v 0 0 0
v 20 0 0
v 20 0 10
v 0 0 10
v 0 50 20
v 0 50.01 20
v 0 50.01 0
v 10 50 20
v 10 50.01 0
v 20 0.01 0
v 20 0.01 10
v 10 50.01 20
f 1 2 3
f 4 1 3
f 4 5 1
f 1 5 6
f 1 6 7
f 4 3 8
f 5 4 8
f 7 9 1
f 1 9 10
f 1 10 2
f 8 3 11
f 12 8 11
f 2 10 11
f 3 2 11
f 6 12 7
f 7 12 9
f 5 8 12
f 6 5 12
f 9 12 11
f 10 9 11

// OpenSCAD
// file: beams.scad
/* 
 * openscad beams library
 * create complex openscads objects from frames which are defining beams
 * (constructed like a ship body or airplane hull)
 *
 * https://github.com/Stemer114/openscad_beams
 * http://www.thingiverse.com/Stemer114/designs
 * 
 *    Copyright (C) 2016 Stemer114 (stemer114@merunka.de)
 *
 *    This program is free software: you can redistribute it and/or modify
 *    it under the terms of the GNU General Public License as published by
 *    the Free Software Foundation, either version 3 of the License, or
 *    (at your option) any later version.
 *
 *    This program is distributed in the hope that it will be useful,
 *    but WITHOUT ANY WARRANTY; without even the implied warranty of
 *    MERCHANTABILITY or FITNESS FOR A PARTICULAR PURPOSE.  See the
 *    GNU General Public License for more details.
 *
 *    You should have received a copy of the GNU General Public License
 *    along with this program.  If not, see <http://www.gnu.org/licenses/>.
 *

 * Credits: 
 *          for some of the examples
 *          MCAD Library - Polyholes Copyright 2011 Nophead (of RepRap fame)
 *          It is licensed under the terms of Creative Commons Attribution 3.0 Unported.
 *          https://github.com/SolidCode/MCAD/blob/master/polyholes.scad
 *
 *          BeamsVersion, libEcho and code structure inspired by 
 *          OpenSCAD Parts Library by randyy is licensed under the GNU - LGPL license. 
 *          http://www.thingiverse.com/thing:6021
 *
 */

//**** house keeping
//we define these as functions to avoid assignment problems from caller modules
function BeamsVersion() = 1.0;  //library version
function ep()=0.01;  //epsilon environment to avoid non-manifold objects


//**** module definitions

// a single rectangular frame, usually very thin
// params: w - width of frame (x direction)
//         h - height of frame (z direction)
//         d - thickness of frame (y direction, usually very thin, e.g. 0.1mm)
//         o - offset vector from origin (probably best to use x and y offsets only here for starters)
//         r - rotation vector (probably best to use only z rotation here for starters)
//         vec - vector interface, used instead of the named params
//         the vector must use the following structure (example)
//           w  h  rotation    offset        thickness
//          [3, 4, [0, 0, 90], [0, -1.5, 0], ep ],   //start (front center)
//         there is no checking other than length checking to branch in the interface
//         so better make sure the vector conforms
//         the vector interface allows you to define a list of vectors in your source file
//         and supply them all at once to the beam module (see below)
//         this probably makes more sense if you look at some of the example files
module frame(
        w = 10,  //width
        h = 10,  //height
        r = [0, 0, 0],  //rotation vector
        o = [0, 0, 0],   //offset vector
        d = ep(),  //thickness (normally very thin)
        vec = [],  //vector, default none
        )
{
    if ( len(vec)==5 ) {
        //use vector interface
        translate( vec[3] )
            rotate( vec[2] )
            cube([ vec[0], vec[4], vec[1] ]);
    } else {
        //use single param interface
        translate(o)
            rotate(r)
            cube([w, d, h]);
    }  //end else
}  //end module

// a single beam consisting of two frames at either end, connected by a hull
// to disable hull, use no_hull=true (for debugging)
// beam uses the vector interface (see above in module frame)
module beam(
        frame1 = [10, 10, [0, 0, 0], [0, 0, 0], ep() ],
        frame2 = [10, 10, [0, 0, 0], [0, 20, 0], ep() ],
        no_hull = false,   
        )
{
    if ( no_hull ) {
        frame(vec=frame1);
        frame(vec=frame2);
    } else {
        hull() {
            frame(vec=frame1);
            frame(vec=frame2);
        }  //end hull
    }  //end else
}  //end module

// a beam consisting of 2 or more frames connected by hulls
// uses the vector interface (see above)
// see example scad files in library source to get an idea how to use this
module beam_multi(frames=[], no_hull=false )
{
    if ( len(frames)<2 ) {
        echo("WARNING: beam_multi: number of frames too small (must be at least 2): ", len(frames) );
    } else {
        for ( frame = [0:len(frames)-2] ) {
            beam( frames[frame], frames[frame+1], no_hull=no_hull );
        } //end for

    }
}

/*************************************************
 * interface 
*/

libEcho=true;
if (libEcho!=false){ 
	echo("****************************************************************  ");
    echo(" beams scad library loaded.");
    echo(" Version: ", BeamsVersion() );
    echo(" usage: - include beams.scad in your project dir,");
    echo("        - then add include <beams.scad> to your script ");
	echo("        - to turn off this header, place libEcho=false; in your script");
    echo("        - see examples scad files to some inspiration")
	echo("****************************************************************  ");
}
// main file
/*
 * example for using openscad beams library
 * see https://github.com/Stemer114/openscad_beams
 *
 */

ep = 0.01;  //epsilon environment

include <beams.scad>

//          w   h   rotation   offset    thickness
params = [ 
           [20, 10, [0, 0, 0], [0, 0, 0], ep ],  //first frame
           [10, 20, [0, 0, 0], [0, 50, 0], ep ]  //second frame
         ];

beam_multi(frames=params );
